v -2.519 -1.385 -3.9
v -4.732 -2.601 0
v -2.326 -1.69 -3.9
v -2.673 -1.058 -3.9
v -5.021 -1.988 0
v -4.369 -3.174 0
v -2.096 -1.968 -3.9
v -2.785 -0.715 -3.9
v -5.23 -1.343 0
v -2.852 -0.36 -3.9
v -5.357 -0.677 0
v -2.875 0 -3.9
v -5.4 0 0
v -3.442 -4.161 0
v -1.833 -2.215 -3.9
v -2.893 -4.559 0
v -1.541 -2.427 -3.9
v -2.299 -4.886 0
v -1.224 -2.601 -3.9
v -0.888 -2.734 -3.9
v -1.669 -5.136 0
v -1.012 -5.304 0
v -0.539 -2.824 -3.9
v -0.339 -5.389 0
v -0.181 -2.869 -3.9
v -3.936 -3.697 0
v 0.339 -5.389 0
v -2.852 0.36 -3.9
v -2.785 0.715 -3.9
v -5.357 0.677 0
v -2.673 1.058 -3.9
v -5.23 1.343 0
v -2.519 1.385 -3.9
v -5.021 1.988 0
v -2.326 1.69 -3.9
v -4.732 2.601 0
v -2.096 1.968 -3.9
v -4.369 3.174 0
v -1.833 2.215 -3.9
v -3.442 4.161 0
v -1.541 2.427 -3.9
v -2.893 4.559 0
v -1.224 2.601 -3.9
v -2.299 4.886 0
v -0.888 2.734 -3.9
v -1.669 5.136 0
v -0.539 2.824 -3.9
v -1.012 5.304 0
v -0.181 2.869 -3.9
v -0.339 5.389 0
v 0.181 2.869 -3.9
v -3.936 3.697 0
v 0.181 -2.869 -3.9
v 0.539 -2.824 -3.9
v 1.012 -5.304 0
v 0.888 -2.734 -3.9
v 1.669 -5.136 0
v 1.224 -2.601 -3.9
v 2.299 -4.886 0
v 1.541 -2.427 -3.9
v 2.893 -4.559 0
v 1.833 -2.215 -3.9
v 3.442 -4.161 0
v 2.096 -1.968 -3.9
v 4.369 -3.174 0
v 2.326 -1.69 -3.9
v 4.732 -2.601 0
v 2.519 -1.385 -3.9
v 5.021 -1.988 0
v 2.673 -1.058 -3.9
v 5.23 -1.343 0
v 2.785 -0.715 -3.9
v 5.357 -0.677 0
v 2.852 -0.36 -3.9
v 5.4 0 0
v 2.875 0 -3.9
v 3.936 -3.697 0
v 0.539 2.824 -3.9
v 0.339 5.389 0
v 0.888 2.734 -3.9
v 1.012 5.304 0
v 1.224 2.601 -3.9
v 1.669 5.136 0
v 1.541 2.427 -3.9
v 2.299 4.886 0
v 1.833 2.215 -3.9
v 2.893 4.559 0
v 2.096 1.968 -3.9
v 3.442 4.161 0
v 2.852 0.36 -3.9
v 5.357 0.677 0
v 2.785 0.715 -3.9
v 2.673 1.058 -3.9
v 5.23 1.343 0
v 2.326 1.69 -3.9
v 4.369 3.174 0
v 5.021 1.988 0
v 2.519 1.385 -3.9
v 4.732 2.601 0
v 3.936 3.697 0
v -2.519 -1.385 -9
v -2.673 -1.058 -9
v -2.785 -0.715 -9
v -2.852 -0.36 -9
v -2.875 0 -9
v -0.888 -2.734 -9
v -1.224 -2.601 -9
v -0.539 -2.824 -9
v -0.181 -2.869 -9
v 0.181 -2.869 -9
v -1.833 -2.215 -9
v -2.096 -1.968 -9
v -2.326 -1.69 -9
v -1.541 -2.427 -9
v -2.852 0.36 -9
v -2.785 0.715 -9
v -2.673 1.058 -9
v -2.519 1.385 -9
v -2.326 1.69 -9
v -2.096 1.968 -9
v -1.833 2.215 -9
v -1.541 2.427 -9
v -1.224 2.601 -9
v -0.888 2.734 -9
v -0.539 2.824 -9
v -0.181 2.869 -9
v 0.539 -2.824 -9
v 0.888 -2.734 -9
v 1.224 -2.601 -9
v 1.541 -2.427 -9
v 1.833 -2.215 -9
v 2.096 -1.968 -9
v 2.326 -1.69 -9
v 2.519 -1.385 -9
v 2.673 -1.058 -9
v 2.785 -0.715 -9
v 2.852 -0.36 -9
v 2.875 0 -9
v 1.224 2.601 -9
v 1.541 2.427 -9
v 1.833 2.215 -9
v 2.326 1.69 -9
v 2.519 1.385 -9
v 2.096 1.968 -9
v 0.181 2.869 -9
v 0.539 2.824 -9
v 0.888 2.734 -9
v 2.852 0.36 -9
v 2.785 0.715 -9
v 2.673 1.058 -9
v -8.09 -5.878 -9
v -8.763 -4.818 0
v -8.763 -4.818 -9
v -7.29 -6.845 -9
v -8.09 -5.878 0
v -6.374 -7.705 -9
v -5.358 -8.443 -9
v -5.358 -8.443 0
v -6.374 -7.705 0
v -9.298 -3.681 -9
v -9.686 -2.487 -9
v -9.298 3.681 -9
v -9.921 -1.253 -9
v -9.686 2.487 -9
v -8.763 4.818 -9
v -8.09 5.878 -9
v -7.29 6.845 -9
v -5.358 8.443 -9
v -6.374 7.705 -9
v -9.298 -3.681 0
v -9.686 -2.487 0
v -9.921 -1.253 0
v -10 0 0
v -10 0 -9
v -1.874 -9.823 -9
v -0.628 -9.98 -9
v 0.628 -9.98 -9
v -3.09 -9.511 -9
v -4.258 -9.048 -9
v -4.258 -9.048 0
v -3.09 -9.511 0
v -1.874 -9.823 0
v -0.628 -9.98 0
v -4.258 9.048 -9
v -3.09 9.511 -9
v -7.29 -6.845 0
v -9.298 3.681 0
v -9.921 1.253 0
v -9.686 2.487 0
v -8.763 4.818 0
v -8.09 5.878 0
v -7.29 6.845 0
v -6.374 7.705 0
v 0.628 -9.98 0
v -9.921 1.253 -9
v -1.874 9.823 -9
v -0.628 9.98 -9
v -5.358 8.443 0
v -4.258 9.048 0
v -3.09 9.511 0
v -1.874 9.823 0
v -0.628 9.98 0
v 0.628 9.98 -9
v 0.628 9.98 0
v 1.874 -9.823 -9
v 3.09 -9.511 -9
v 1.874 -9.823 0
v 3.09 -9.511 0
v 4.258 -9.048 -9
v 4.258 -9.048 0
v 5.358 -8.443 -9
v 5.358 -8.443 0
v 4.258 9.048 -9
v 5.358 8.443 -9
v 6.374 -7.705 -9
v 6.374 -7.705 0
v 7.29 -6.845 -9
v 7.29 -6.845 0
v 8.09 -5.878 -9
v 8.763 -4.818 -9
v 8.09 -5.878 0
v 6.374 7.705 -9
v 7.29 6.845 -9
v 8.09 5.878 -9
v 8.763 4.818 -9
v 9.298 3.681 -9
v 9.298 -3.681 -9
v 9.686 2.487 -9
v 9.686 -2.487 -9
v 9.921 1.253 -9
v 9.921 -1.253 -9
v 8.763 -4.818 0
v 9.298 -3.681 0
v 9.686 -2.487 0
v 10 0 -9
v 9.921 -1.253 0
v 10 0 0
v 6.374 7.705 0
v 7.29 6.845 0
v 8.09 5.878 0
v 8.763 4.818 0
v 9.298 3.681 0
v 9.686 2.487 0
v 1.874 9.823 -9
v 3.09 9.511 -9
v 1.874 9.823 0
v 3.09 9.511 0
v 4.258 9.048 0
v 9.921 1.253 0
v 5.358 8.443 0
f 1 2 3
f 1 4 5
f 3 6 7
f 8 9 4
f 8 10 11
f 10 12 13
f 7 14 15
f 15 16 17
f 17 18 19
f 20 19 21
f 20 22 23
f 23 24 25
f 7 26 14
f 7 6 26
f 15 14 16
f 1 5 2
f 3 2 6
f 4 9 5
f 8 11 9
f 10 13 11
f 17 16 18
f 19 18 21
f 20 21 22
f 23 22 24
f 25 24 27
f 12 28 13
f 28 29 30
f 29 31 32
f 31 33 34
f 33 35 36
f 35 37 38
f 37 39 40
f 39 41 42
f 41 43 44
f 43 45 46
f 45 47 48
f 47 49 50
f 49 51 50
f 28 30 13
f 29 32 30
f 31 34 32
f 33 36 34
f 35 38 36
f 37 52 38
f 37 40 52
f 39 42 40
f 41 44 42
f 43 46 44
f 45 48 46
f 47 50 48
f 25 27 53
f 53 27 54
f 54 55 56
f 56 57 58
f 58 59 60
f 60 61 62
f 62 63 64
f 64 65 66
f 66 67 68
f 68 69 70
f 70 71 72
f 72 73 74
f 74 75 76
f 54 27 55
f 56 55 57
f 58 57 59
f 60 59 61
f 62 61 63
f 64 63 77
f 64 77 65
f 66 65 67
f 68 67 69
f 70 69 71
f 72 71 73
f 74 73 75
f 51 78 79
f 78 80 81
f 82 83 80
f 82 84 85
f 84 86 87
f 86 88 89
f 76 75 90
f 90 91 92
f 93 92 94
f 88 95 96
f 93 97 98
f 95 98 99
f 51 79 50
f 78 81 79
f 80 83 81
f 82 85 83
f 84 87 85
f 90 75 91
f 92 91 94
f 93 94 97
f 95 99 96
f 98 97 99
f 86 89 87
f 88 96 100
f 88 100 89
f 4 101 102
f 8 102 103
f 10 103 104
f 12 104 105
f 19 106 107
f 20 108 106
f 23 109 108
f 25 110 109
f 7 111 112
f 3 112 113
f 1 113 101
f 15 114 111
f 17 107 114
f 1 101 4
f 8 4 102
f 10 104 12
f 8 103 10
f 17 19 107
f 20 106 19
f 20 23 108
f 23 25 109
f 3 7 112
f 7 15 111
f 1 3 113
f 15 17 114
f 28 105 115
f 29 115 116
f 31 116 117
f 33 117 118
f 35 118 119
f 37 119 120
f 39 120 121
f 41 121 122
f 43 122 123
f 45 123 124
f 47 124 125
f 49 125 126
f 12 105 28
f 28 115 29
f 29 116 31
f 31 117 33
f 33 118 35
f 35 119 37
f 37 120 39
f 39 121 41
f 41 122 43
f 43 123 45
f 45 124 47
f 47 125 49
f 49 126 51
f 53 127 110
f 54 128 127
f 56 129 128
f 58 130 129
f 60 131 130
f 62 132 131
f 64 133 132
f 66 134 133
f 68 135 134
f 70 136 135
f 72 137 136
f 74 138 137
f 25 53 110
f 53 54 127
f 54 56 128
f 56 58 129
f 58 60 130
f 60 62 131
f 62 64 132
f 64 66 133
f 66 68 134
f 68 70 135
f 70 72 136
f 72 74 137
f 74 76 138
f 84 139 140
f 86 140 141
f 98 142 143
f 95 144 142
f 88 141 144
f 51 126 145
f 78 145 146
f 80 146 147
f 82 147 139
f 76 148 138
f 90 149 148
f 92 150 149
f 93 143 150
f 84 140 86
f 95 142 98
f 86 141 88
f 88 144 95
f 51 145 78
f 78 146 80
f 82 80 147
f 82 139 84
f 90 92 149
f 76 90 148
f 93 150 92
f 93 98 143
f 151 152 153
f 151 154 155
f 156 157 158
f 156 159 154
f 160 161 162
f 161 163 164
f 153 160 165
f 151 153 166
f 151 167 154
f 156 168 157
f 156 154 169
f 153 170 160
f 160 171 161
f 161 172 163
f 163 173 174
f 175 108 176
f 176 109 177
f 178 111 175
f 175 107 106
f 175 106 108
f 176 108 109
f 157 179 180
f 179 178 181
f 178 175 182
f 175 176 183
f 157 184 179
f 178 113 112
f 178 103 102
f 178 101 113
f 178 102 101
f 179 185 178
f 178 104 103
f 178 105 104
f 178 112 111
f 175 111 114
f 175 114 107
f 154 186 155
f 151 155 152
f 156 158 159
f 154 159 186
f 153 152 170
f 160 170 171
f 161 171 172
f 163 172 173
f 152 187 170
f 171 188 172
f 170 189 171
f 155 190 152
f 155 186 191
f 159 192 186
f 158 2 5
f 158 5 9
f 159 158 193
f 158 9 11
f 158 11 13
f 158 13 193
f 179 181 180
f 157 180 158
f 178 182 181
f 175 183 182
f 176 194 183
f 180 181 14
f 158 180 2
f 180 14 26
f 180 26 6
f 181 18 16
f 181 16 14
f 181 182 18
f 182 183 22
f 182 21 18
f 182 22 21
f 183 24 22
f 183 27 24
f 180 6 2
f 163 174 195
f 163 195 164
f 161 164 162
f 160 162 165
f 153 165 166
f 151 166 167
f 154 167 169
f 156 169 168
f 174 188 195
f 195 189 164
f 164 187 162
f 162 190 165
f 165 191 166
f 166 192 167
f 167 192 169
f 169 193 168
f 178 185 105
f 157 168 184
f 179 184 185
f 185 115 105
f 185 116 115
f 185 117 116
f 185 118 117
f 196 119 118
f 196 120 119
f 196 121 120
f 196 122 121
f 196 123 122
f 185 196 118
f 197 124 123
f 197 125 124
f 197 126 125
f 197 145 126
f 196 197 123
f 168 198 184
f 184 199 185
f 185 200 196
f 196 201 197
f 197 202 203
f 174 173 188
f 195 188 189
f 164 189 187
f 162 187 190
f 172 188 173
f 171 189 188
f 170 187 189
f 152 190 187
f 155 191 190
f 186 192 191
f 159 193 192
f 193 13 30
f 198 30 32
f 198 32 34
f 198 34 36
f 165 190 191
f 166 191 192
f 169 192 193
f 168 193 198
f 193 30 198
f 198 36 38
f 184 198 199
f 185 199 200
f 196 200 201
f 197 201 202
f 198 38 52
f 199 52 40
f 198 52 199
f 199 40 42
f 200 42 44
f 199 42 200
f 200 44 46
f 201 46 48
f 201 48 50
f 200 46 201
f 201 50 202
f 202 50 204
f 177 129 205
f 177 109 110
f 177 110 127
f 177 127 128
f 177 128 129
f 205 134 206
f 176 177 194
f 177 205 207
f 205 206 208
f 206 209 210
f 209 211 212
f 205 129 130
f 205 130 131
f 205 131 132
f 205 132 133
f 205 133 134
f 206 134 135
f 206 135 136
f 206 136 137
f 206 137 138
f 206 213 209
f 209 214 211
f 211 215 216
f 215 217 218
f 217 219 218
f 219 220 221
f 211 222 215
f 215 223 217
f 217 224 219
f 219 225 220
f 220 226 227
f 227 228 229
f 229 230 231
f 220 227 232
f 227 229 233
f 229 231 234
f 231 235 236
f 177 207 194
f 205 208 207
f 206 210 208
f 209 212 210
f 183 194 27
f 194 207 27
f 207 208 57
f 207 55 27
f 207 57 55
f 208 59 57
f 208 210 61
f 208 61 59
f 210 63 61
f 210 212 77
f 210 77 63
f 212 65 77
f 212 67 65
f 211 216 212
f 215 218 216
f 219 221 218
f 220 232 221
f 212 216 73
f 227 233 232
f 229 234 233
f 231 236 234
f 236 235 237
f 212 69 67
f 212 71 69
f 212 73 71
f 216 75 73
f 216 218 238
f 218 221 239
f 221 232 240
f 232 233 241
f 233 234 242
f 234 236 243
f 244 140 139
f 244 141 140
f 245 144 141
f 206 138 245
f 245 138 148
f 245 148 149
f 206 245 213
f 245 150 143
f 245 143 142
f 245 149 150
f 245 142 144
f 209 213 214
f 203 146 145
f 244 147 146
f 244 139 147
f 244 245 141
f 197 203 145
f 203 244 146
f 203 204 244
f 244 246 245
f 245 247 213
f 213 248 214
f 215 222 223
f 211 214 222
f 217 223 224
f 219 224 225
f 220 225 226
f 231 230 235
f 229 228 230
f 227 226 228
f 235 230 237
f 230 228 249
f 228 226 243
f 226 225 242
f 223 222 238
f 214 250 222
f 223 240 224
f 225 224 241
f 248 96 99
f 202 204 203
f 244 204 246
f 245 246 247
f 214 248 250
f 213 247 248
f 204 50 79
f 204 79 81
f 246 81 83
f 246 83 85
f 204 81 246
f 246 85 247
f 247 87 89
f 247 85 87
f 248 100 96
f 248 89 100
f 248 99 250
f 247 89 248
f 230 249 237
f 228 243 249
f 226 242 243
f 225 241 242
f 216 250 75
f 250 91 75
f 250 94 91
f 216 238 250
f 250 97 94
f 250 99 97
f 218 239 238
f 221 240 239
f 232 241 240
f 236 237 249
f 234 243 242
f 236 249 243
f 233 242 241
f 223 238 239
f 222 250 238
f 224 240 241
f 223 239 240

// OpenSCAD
$fn = 50;

difference() {
	union() {
		translate(v = [0, 0, -9.0]) {
			cylinder(h = 9, r = 10.0);
		}
	}
	union() {
		translate(v = [0, 0, 0]) {
			rotate(a = [0, 0, 0]) {
				difference() {
					union() {
						translate(v = [0, 0, -12.0]) {
							cylinder(h = 12, r = 2.6);
						}
						translate(v = [0, 0, -3.9]) {
							cylinder(h = 3.9, r1 = 2.875, r2 = 5.4);
						}
						translate(v = [0, 0, -12.0]) {
							cylinder(h = 12, r = 2.875);
						}
						translate(v = [0, 0, -12.0]) {
							cylinder(h = 12, r = 2.6);
						}
					}
					union();
				}
			}
		}
	}
}
